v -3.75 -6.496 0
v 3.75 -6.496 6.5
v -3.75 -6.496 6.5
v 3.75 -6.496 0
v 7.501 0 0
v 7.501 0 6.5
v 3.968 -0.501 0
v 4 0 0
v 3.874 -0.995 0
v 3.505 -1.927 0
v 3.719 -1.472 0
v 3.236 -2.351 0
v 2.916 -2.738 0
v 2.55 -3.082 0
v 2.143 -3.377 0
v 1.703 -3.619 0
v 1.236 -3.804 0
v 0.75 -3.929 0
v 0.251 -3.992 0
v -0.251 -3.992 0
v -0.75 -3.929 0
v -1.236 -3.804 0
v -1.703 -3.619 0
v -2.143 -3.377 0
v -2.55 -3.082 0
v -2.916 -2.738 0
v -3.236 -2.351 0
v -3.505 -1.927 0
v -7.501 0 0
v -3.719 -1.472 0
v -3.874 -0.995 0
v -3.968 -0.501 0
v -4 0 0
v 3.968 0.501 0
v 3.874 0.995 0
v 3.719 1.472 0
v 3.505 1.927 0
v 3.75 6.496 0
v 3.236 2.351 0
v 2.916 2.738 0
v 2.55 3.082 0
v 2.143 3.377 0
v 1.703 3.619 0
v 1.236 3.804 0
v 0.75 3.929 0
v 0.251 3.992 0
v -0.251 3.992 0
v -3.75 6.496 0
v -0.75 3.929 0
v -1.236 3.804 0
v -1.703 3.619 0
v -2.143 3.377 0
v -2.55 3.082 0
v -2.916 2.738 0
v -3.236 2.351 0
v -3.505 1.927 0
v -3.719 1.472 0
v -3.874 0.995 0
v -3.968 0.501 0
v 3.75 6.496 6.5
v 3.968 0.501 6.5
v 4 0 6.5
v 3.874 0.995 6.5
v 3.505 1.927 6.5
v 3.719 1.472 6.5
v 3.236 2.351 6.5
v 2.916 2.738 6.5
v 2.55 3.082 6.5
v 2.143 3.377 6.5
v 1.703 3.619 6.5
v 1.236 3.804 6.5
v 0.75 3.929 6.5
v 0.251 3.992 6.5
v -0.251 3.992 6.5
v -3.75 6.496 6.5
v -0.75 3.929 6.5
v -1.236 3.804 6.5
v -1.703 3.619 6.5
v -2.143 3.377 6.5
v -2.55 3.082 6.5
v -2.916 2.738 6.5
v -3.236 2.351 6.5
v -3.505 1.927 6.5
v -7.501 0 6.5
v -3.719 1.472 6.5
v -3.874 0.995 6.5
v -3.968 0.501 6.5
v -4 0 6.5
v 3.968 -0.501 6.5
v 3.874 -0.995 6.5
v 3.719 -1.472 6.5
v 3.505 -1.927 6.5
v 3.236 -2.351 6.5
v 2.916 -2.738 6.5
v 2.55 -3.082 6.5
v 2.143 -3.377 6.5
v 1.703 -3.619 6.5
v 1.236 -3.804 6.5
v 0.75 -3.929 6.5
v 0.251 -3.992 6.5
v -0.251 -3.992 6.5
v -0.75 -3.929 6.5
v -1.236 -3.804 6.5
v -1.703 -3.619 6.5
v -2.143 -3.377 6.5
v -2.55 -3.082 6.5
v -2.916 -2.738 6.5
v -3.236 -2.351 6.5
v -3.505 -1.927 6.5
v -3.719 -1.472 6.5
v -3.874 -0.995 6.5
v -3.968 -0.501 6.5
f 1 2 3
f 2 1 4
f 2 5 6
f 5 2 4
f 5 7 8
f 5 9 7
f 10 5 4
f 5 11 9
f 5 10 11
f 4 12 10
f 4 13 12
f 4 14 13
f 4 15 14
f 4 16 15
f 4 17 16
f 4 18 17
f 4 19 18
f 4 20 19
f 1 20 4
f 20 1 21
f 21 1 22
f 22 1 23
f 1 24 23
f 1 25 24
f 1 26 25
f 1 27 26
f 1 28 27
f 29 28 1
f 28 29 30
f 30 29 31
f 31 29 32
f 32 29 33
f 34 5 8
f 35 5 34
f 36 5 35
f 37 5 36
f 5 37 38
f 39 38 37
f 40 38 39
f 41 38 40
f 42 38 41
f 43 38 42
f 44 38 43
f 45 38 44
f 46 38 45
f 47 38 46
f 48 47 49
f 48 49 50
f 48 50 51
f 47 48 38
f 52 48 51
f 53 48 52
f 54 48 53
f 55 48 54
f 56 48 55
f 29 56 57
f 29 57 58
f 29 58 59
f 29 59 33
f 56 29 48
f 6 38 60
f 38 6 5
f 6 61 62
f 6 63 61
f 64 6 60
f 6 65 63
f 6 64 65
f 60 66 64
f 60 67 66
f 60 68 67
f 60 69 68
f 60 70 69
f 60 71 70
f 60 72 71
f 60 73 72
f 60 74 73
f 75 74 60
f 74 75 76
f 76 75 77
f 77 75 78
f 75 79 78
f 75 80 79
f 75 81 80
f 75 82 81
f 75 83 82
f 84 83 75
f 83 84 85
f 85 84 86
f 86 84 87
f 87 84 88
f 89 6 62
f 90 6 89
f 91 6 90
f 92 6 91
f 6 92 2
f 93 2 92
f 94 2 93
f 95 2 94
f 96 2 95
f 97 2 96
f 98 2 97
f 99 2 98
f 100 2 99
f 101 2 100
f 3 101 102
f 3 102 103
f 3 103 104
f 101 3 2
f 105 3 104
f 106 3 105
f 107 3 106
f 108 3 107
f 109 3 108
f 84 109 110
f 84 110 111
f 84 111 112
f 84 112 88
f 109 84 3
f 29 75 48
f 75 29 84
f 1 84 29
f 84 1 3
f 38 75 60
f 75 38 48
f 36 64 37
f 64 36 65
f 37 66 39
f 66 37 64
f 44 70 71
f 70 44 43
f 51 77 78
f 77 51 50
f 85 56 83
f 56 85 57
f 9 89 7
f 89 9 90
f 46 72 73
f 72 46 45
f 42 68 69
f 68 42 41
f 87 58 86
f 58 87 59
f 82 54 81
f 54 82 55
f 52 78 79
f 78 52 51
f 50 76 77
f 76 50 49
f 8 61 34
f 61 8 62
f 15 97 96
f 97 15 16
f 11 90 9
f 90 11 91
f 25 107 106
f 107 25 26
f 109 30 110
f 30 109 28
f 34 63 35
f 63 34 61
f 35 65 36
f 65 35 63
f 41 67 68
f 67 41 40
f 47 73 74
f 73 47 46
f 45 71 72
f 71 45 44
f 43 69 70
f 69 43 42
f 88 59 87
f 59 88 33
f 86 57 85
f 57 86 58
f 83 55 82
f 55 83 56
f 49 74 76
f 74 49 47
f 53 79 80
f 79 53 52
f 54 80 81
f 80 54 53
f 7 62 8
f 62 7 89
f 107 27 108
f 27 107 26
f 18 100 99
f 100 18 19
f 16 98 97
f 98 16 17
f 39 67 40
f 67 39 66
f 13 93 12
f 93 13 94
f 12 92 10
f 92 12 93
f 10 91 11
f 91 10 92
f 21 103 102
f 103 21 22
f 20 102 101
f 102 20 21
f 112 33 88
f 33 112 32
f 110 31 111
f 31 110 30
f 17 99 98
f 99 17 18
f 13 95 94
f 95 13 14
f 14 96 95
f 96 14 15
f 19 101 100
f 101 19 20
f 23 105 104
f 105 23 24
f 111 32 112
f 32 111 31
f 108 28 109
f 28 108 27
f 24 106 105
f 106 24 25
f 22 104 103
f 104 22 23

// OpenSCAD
$fn = 50;


difference() {
	union() {
		translate(v = [0, 0, 0]) {
			rotate(a = [0, 0, 0]) {
				difference() {
					union() {
						linear_extrude(height = 6.5000000000) {
							polygon(points = [[7.5010000000, 0.0000000000], [3.7505000000, 6.4960565538], [-3.7505000000, 6.4960565538], [-7.5010000000, 0.0000000000], [-3.7505000000, -6.4960565538], [3.7505000000, -6.4960565538]]);
						}
					}
					union();
				}
			}
		}
	}
	union() {
		cylinder(h = 100, r = 4.0000000000);
	}
}
